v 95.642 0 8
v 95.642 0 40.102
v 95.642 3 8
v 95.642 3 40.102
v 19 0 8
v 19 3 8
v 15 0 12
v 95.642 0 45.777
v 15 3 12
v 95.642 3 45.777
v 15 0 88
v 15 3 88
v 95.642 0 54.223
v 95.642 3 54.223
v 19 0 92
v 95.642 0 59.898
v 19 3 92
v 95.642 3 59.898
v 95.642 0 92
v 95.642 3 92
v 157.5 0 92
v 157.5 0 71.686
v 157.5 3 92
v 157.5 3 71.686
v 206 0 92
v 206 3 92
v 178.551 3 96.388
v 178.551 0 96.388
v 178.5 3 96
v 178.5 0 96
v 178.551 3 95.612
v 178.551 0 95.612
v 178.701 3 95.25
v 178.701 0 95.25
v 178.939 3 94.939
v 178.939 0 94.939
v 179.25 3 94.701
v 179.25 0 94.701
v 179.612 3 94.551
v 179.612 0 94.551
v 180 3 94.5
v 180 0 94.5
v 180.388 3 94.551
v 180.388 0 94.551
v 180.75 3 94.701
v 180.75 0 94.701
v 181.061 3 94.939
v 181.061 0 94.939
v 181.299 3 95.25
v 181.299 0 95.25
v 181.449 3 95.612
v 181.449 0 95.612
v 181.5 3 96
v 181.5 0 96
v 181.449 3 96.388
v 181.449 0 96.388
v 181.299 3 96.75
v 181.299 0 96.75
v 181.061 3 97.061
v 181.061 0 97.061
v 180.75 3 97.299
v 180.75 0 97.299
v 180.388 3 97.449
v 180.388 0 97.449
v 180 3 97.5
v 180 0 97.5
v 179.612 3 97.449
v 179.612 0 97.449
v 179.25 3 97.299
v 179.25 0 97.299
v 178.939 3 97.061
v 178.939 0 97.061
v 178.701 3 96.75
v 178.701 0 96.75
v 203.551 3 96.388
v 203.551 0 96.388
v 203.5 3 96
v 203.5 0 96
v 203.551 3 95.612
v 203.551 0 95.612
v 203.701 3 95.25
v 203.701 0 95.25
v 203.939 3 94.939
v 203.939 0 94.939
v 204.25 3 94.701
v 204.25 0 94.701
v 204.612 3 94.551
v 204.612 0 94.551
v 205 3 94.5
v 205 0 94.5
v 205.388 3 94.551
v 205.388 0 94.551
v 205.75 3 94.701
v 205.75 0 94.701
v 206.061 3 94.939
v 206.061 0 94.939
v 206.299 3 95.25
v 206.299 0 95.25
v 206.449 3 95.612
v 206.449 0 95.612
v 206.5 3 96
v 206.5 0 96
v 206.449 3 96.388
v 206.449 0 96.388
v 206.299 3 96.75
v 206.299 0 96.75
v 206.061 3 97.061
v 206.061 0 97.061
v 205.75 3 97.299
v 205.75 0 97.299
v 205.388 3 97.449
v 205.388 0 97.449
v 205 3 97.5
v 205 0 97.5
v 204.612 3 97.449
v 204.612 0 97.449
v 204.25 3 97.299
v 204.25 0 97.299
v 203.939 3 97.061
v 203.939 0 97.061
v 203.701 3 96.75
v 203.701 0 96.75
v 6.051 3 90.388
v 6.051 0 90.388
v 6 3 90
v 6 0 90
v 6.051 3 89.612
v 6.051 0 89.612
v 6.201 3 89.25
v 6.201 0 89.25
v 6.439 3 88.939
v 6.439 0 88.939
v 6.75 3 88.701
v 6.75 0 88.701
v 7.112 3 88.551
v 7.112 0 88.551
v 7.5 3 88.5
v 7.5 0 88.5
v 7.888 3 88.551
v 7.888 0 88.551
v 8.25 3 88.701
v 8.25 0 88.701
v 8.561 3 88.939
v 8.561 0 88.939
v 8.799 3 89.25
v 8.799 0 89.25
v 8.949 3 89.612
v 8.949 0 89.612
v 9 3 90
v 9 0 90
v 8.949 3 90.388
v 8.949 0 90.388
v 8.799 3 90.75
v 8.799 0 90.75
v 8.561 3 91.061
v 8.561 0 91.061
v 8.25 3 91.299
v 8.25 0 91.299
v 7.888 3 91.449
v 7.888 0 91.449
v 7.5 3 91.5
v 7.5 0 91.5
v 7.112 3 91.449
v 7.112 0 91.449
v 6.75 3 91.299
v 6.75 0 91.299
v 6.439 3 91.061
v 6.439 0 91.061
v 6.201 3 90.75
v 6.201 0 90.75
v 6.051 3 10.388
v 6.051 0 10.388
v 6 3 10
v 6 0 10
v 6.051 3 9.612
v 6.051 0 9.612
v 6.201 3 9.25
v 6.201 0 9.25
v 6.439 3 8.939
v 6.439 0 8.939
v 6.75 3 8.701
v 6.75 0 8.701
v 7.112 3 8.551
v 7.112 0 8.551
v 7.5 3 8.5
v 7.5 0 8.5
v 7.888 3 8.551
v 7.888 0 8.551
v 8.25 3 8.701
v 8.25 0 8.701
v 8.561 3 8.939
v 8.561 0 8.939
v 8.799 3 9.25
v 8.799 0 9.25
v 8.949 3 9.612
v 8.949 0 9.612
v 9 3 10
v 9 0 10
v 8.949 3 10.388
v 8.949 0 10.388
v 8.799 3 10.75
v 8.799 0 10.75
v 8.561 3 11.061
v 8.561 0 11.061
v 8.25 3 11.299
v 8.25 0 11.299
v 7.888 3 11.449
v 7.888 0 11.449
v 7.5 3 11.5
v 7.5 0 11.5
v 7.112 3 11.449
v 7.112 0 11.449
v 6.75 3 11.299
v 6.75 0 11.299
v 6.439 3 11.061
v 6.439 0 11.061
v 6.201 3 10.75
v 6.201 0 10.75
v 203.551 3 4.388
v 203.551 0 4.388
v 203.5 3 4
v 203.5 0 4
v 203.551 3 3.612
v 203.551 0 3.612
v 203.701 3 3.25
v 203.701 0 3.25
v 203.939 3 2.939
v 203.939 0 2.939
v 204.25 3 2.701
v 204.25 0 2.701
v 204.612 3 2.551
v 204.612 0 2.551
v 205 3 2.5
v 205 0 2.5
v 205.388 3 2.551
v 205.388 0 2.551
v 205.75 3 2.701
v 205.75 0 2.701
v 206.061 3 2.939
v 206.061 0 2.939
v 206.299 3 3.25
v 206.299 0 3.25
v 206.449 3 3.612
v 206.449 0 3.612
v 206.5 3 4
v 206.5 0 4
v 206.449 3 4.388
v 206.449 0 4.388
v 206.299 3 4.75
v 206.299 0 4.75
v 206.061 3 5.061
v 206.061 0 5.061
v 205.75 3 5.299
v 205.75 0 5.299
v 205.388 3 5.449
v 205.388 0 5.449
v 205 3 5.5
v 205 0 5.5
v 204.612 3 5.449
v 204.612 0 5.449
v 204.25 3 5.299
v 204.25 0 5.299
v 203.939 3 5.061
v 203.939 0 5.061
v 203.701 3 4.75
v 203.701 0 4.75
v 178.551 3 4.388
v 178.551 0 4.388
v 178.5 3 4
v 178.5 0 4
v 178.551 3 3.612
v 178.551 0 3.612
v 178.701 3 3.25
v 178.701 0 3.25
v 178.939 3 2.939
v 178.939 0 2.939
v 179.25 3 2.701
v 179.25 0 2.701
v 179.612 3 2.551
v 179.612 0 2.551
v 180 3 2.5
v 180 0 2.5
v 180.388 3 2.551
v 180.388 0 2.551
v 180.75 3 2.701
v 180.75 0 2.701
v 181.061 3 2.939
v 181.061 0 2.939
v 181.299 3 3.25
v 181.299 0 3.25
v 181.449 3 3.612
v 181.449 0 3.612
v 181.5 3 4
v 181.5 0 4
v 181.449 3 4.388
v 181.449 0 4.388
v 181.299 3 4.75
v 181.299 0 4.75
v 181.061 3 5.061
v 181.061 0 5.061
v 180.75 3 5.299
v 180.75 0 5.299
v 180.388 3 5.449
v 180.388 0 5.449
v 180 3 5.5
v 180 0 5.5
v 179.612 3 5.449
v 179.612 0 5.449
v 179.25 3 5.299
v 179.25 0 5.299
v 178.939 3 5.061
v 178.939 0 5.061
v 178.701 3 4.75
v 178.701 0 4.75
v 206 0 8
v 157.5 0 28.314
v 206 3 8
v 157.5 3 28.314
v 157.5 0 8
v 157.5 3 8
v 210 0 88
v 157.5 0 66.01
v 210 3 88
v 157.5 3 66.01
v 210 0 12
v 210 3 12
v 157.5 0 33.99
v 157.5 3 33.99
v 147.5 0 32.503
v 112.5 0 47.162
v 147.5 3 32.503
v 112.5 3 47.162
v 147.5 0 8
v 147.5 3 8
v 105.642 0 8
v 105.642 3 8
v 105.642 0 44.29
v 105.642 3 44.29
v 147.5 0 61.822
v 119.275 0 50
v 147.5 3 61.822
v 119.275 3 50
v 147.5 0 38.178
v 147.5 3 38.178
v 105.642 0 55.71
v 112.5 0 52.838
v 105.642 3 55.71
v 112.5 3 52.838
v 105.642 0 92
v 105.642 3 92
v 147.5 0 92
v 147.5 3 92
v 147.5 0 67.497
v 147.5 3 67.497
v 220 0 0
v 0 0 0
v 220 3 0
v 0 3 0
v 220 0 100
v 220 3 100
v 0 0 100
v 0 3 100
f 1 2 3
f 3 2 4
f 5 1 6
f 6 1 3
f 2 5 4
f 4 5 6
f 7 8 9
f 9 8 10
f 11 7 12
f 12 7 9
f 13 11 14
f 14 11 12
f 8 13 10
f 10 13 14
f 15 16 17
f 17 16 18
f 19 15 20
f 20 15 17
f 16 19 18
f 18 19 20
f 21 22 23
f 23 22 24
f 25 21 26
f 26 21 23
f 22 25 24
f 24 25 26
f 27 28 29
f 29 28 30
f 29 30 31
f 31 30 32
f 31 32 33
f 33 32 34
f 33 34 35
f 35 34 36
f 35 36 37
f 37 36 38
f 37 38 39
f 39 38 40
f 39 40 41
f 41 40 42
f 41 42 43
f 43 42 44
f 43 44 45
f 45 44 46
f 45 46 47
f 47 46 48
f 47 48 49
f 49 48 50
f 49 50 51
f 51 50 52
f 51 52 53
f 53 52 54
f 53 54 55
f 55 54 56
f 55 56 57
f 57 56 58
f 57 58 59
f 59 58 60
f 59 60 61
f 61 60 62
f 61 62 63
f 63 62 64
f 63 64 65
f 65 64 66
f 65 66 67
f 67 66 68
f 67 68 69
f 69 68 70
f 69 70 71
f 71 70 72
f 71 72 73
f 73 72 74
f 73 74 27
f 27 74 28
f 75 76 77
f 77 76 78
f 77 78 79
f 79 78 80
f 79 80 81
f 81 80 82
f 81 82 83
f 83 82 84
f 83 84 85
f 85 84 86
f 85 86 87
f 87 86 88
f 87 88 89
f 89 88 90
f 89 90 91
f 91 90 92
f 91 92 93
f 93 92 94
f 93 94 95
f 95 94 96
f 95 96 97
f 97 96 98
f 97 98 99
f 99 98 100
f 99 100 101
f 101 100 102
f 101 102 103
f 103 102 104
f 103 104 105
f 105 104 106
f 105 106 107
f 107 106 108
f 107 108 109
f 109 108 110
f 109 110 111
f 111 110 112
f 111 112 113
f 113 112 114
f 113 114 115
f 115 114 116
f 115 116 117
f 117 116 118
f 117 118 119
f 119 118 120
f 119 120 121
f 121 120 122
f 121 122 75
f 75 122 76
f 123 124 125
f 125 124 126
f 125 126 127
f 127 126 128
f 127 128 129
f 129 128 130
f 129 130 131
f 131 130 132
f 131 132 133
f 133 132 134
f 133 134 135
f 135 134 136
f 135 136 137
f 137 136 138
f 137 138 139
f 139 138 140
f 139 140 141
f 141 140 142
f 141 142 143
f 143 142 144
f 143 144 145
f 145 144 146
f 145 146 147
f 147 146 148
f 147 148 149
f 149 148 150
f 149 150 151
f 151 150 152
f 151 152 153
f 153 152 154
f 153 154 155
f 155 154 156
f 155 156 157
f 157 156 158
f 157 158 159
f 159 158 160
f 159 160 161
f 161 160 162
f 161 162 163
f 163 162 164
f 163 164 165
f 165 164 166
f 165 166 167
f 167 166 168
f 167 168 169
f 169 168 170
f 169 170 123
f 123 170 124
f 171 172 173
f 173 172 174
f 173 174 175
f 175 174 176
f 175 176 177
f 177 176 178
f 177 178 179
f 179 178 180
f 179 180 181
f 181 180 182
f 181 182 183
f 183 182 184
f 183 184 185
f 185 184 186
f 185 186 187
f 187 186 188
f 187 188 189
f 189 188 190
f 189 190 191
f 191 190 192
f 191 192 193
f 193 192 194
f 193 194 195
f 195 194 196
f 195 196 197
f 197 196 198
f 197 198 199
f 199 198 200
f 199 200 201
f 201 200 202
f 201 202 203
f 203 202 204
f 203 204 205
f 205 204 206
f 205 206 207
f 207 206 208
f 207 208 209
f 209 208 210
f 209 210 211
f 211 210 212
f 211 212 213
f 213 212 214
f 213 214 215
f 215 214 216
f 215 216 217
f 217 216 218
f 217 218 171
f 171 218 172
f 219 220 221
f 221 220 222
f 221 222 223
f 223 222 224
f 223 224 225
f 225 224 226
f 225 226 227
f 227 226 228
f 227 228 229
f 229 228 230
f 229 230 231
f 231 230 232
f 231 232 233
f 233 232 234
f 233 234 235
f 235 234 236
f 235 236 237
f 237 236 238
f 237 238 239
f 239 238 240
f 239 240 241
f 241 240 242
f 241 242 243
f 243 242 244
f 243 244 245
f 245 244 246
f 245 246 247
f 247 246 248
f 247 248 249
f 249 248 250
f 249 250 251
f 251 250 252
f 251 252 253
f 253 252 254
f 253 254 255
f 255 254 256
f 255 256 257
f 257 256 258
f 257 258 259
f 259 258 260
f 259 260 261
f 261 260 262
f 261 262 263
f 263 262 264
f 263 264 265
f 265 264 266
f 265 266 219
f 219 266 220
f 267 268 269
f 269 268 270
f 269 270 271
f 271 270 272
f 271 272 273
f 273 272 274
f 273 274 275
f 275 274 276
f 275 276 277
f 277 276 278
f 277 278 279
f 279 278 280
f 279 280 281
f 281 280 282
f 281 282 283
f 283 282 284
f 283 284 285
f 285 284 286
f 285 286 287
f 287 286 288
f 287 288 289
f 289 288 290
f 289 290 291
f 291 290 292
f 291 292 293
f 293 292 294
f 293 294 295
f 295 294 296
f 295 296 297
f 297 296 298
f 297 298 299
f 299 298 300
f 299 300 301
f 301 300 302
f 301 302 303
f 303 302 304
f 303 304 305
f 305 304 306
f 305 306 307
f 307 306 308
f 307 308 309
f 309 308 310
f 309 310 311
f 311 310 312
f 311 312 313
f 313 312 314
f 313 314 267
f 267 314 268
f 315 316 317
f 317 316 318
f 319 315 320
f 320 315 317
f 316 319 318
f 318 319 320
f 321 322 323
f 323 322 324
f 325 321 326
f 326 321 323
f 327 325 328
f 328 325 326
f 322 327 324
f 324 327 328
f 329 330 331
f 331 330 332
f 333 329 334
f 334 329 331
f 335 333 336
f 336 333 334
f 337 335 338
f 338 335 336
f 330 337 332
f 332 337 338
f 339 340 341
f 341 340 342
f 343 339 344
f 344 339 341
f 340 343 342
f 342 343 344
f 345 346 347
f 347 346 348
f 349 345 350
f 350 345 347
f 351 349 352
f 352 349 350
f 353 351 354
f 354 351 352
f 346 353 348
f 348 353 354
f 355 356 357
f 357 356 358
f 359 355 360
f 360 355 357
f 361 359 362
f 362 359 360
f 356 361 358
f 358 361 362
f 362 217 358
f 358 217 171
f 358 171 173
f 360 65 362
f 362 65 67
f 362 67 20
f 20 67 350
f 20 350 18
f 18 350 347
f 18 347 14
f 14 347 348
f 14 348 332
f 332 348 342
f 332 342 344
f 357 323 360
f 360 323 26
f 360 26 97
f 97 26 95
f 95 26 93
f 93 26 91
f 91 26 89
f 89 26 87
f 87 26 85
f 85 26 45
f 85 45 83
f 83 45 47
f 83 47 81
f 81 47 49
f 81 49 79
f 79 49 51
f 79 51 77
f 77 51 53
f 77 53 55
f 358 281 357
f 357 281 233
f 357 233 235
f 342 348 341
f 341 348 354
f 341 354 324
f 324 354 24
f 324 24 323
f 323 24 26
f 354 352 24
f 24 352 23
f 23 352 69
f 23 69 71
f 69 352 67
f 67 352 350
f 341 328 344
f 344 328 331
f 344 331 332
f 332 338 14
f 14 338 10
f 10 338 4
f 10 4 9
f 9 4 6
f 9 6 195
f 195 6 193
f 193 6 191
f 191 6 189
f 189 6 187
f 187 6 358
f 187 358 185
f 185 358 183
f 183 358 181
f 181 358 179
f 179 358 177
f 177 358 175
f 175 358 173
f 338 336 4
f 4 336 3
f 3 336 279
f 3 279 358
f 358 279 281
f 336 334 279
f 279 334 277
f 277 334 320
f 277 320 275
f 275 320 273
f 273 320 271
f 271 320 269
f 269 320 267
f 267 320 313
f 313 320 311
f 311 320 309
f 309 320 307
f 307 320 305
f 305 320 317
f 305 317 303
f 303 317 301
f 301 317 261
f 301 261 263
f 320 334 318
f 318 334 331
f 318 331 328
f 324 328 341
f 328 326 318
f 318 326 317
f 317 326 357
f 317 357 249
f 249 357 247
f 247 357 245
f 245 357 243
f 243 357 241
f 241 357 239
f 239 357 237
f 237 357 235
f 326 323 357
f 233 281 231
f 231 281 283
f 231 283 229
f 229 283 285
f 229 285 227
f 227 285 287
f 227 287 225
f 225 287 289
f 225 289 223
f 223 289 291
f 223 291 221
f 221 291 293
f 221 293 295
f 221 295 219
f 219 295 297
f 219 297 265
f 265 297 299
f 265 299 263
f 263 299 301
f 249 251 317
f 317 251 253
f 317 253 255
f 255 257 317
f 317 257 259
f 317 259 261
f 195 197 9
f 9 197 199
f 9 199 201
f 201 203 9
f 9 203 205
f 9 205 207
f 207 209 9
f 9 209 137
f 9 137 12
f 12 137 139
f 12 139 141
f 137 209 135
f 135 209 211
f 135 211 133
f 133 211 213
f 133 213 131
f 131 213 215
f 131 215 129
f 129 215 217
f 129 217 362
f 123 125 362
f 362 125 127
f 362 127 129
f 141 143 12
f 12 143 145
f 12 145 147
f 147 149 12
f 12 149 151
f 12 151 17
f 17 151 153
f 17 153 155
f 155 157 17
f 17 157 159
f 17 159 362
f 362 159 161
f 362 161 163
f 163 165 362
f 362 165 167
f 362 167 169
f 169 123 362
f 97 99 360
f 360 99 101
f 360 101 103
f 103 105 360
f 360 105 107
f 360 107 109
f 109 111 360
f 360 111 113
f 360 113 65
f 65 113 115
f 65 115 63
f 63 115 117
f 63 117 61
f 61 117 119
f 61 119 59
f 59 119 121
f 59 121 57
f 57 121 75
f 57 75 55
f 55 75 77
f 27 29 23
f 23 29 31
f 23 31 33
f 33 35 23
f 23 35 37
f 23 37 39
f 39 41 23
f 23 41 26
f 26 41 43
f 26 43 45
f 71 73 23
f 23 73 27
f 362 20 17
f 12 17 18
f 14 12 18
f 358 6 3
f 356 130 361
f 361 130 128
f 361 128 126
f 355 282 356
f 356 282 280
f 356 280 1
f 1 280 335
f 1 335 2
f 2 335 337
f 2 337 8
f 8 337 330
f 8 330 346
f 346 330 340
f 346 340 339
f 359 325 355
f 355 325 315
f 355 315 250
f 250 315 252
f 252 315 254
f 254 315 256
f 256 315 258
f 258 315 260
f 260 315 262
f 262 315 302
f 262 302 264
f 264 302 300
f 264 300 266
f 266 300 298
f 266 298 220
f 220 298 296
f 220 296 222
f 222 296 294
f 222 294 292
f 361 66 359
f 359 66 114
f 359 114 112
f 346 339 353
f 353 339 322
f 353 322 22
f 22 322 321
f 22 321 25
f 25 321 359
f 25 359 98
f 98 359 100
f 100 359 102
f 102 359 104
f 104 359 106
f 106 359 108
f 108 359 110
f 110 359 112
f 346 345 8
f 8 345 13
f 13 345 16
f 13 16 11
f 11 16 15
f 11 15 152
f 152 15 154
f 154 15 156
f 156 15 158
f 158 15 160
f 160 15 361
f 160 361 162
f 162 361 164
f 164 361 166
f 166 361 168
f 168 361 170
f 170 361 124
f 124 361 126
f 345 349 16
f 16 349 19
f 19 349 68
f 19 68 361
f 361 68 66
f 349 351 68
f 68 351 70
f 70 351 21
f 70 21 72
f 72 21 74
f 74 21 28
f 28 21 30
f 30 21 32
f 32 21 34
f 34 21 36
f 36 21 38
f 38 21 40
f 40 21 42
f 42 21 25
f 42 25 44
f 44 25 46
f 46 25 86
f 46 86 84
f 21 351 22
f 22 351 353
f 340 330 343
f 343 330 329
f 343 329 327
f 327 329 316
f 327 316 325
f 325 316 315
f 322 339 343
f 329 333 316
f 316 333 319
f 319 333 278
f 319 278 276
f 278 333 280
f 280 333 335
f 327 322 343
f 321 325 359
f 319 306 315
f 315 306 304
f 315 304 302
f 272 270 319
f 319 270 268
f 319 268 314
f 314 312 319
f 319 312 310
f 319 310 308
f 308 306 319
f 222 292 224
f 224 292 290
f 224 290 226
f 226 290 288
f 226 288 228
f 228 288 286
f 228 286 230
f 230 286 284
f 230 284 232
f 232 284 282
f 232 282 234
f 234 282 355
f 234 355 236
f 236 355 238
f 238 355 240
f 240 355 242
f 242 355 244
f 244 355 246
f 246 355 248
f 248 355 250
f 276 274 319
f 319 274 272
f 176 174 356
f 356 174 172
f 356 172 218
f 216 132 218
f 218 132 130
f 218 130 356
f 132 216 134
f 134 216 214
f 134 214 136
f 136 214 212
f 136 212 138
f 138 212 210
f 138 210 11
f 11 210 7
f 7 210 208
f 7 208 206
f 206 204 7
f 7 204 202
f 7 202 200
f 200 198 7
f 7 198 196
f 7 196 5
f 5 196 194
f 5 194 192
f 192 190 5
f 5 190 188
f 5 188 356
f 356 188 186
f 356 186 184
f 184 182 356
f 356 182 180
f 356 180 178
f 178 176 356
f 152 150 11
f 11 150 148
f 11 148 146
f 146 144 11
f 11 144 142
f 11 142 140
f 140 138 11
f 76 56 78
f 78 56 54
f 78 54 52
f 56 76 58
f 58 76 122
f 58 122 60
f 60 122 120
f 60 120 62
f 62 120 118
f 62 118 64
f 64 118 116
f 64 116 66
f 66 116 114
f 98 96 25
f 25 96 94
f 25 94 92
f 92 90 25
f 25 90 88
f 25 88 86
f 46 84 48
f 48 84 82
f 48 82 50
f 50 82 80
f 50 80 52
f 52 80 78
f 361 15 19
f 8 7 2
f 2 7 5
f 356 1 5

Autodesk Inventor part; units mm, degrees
ref_plane "YZ Plane" through (0, 0, 0) normal (1, 0, 0) x (0, 1, 0)
ref_plane "XZ Plane" through (0, 0, 0) normal (0, 1, 0) x (-1, 0, 0)
ref_plane "XY Plane" through (0, 0, 0) normal (0, 0, 1) x (1, 0, 0)
sketch "Szkic1" plane through (0, 0, 0) normal (0, 1, 0) x (-1, 0, 0)
  point P0 (0, 0)
sketch "Szkic2" plane through (0, 0, 0) normal (0, 1, 0) x (-1, 0, 0)
  line L0 (0, 0) -> (-15, 0)
  line L1 (-15, 0) -> (-15, 100)
  line L2 (-15, 100) -> (0, 100)
  line L3 (0, 100) -> (0, 0)
  line L4 (-7.5, 100) -> (-7.5, 90) construction
  line L5 (-7.5, 0) -> (-7.5, 10) construction
  circle A0 centre (-7.5, 90) radius 1.5
  circle A1 centre (-7.5, 10) radius 1.5
  line L6 (-15, 100) -> (-220, 100)
  line L7 (-220, 100) -> (-220, 92)
  line L8 (-220, 92) -> (-15, 92)
  line L9 (-15, 92) -> (-15, 100)
  line L10 (-15, 0) -> (-220, 0)
  line L11 (-220, 0) -> (-220, 8)
  line L12 (-220, 8) -> (-15, 8)
  line L13 (-15, 8) -> (-15, 0)
  line L14 (-15, 92) -> (-19, 92) construction
  line L15 (-15, 92) -> (-15, 88) construction
  line L16 (-220, 8) -> (-216, 8) construction
  line L17 (-220, 8) -> (-210, 8)
  line L18 (-210, 8) -> (-210, 92)
  line L19 (-210, 92) -> (-220, 92)
  line L20 (-220, 92) -> (-220, 8)
  line L21 (-210, 8) -> (-206, 8) construction
  line L22 (-210, 8) -> (-210, 12) construction
  line L23 (-15, 88) -> (-206, 8)
  line L24 (-19, 92) -> (-210, 12)
  line L25 (-15, 8) -> (-15, 12) construction
  line L26 (-15, 8) -> (-19, 8) construction
  line L27 (-210, 92) -> (-206, 92) construction
  line L28 (-210, 92) -> (-210, 88) construction
  line L29 (-210, 88) -> (-19, 8)
  line L30 (-15, 12) -> (-206, 92)
  line L31 (-220, 96) -> (-205, 96) construction
  line L32 (-220, 4) -> (-205, 4) construction
  circle A2 centre (-205, 96) radius 1.5
  circle A3 centre (-205, 4) radius 1.5
  line L33 (-205, 96) -> (-180, 96) construction
  line L34 (-205, 4) -> (-180, 4) construction
  circle A4 centre (-180, 96) radius 1.5
  circle A5 centre (-180, 4) radius 1.5
  line L35 (-220, 100) -> (-95, 100) construction
  line L36 (-95.6423, 92) -> (-105.6423, 92)
  line L37 (-105.6423, 92) -> (-105.6423, 8)
  line L38 (-105.6423, 8) -> (-95.6423, 8)
  line L39 (-95.6423, 8) -> (-95.6423, 92)
  line L40 (-220, 0) -> (-157.5, 0) construction
  line L41 (-157.5, 8) -> (-147.5, 8)
  line L42 (-147.5, 8) -> (-147.5, 92)
  line L43 (-147.5, 92) -> (-157.5, 92)
  line L44 (-157.5, 92) -> (-157.5, 8)
  point P0 (-105.725, 50)
  point P1 (-105.6423, 50.0346)
  point P2 (-105.6423, 49.9654)
  point P3 (-112.5, 52.8377)
  point P4 (-147.5, 67.4974)
  point P5 (-105.6423, 55.71)
  point P6 (-119.275, 50)
  point P7 (-147.5, 38.178)
  point P8 (-147.5, 61.822)
  point P9 (-112.5, 47.1623)
  point P10 (-105.6423, 44.29)
  point P11 (-147.5, 32.5026)
  point P12 (-157.5, 66.0105)
  point P13 (-157.5, 33.9895)
  point P14 (-157.5, 28.3141)
  point P15 (-157.5, 71.6859)
  point P16 (-95.6423, 59.8985)
  point P17 (-95.6423, 45.7769)
  point P18 (-95.6423, 54.2231)
  point P19 (-95.6423, 40.1015)
  dimension "d0" = 15
  dimension "d1" = 100
  dimension "d2" = 10
  dimension "d3" = 10
  dimension "d4" = 3
  dimension "d5" = 3
  dimension "d6" = 205
  dimension "d7" = 8
  dimension "d8" = 205
  dimension "d9" = 8
  dimension "d10" = 4
  dimension "d11" = 4
  dimension "d12" = 4
  dimension "d13" = 10
  dimension "d14" = 4
  dimension "d15" = 4
  dimension "d16" = 4
  dimension "d17" = 4
  dimension "d18" = 207.0773
  dimension "d19" = 15
  dimension "d20" = 15
  dimension "d21" = 3
  dimension "d22" = 3
  dimension "d23" = 25
  dimension "d24" = 3
  dimension "d25" = 3
  dimension "d26" = 125
  dimension "d27" = 10
  dimension "d28" = 10
extrude "Wyciągnięcie proste1" add sketch "Szkic2" along normal blind 3 contours L0 L1 L2 L3 | L10 L11 L12 L1 | L12 L29 L39 L30 L1 | L1 L8 L7 L6 | L20 L8 L18 L12 | L1 L23 L39 L24 L8 | L39 L29 L37 L30 | L30 L37 L23 L39 | L12 L37 L29 L39 | L18 L24 L44 L23 L12 | L23 L37 L24 L39 | L37 L29 L23 L30 | L30 L23 L37 | L8 L30 L44 L29 L18 | L39 L24 L37 L8 | L23 L30 L24 L37 | L23 L29 L24 L30 | L12 L44 L23 L42 | L23 L42 L24 L29 | L44 L24 L42 L23 | L44 L29 L42 L24 | L24 L29 L42 L30 | L44 L30 L42 L29 | L8 L42 L30 L44
properties part number "lf-esp"
